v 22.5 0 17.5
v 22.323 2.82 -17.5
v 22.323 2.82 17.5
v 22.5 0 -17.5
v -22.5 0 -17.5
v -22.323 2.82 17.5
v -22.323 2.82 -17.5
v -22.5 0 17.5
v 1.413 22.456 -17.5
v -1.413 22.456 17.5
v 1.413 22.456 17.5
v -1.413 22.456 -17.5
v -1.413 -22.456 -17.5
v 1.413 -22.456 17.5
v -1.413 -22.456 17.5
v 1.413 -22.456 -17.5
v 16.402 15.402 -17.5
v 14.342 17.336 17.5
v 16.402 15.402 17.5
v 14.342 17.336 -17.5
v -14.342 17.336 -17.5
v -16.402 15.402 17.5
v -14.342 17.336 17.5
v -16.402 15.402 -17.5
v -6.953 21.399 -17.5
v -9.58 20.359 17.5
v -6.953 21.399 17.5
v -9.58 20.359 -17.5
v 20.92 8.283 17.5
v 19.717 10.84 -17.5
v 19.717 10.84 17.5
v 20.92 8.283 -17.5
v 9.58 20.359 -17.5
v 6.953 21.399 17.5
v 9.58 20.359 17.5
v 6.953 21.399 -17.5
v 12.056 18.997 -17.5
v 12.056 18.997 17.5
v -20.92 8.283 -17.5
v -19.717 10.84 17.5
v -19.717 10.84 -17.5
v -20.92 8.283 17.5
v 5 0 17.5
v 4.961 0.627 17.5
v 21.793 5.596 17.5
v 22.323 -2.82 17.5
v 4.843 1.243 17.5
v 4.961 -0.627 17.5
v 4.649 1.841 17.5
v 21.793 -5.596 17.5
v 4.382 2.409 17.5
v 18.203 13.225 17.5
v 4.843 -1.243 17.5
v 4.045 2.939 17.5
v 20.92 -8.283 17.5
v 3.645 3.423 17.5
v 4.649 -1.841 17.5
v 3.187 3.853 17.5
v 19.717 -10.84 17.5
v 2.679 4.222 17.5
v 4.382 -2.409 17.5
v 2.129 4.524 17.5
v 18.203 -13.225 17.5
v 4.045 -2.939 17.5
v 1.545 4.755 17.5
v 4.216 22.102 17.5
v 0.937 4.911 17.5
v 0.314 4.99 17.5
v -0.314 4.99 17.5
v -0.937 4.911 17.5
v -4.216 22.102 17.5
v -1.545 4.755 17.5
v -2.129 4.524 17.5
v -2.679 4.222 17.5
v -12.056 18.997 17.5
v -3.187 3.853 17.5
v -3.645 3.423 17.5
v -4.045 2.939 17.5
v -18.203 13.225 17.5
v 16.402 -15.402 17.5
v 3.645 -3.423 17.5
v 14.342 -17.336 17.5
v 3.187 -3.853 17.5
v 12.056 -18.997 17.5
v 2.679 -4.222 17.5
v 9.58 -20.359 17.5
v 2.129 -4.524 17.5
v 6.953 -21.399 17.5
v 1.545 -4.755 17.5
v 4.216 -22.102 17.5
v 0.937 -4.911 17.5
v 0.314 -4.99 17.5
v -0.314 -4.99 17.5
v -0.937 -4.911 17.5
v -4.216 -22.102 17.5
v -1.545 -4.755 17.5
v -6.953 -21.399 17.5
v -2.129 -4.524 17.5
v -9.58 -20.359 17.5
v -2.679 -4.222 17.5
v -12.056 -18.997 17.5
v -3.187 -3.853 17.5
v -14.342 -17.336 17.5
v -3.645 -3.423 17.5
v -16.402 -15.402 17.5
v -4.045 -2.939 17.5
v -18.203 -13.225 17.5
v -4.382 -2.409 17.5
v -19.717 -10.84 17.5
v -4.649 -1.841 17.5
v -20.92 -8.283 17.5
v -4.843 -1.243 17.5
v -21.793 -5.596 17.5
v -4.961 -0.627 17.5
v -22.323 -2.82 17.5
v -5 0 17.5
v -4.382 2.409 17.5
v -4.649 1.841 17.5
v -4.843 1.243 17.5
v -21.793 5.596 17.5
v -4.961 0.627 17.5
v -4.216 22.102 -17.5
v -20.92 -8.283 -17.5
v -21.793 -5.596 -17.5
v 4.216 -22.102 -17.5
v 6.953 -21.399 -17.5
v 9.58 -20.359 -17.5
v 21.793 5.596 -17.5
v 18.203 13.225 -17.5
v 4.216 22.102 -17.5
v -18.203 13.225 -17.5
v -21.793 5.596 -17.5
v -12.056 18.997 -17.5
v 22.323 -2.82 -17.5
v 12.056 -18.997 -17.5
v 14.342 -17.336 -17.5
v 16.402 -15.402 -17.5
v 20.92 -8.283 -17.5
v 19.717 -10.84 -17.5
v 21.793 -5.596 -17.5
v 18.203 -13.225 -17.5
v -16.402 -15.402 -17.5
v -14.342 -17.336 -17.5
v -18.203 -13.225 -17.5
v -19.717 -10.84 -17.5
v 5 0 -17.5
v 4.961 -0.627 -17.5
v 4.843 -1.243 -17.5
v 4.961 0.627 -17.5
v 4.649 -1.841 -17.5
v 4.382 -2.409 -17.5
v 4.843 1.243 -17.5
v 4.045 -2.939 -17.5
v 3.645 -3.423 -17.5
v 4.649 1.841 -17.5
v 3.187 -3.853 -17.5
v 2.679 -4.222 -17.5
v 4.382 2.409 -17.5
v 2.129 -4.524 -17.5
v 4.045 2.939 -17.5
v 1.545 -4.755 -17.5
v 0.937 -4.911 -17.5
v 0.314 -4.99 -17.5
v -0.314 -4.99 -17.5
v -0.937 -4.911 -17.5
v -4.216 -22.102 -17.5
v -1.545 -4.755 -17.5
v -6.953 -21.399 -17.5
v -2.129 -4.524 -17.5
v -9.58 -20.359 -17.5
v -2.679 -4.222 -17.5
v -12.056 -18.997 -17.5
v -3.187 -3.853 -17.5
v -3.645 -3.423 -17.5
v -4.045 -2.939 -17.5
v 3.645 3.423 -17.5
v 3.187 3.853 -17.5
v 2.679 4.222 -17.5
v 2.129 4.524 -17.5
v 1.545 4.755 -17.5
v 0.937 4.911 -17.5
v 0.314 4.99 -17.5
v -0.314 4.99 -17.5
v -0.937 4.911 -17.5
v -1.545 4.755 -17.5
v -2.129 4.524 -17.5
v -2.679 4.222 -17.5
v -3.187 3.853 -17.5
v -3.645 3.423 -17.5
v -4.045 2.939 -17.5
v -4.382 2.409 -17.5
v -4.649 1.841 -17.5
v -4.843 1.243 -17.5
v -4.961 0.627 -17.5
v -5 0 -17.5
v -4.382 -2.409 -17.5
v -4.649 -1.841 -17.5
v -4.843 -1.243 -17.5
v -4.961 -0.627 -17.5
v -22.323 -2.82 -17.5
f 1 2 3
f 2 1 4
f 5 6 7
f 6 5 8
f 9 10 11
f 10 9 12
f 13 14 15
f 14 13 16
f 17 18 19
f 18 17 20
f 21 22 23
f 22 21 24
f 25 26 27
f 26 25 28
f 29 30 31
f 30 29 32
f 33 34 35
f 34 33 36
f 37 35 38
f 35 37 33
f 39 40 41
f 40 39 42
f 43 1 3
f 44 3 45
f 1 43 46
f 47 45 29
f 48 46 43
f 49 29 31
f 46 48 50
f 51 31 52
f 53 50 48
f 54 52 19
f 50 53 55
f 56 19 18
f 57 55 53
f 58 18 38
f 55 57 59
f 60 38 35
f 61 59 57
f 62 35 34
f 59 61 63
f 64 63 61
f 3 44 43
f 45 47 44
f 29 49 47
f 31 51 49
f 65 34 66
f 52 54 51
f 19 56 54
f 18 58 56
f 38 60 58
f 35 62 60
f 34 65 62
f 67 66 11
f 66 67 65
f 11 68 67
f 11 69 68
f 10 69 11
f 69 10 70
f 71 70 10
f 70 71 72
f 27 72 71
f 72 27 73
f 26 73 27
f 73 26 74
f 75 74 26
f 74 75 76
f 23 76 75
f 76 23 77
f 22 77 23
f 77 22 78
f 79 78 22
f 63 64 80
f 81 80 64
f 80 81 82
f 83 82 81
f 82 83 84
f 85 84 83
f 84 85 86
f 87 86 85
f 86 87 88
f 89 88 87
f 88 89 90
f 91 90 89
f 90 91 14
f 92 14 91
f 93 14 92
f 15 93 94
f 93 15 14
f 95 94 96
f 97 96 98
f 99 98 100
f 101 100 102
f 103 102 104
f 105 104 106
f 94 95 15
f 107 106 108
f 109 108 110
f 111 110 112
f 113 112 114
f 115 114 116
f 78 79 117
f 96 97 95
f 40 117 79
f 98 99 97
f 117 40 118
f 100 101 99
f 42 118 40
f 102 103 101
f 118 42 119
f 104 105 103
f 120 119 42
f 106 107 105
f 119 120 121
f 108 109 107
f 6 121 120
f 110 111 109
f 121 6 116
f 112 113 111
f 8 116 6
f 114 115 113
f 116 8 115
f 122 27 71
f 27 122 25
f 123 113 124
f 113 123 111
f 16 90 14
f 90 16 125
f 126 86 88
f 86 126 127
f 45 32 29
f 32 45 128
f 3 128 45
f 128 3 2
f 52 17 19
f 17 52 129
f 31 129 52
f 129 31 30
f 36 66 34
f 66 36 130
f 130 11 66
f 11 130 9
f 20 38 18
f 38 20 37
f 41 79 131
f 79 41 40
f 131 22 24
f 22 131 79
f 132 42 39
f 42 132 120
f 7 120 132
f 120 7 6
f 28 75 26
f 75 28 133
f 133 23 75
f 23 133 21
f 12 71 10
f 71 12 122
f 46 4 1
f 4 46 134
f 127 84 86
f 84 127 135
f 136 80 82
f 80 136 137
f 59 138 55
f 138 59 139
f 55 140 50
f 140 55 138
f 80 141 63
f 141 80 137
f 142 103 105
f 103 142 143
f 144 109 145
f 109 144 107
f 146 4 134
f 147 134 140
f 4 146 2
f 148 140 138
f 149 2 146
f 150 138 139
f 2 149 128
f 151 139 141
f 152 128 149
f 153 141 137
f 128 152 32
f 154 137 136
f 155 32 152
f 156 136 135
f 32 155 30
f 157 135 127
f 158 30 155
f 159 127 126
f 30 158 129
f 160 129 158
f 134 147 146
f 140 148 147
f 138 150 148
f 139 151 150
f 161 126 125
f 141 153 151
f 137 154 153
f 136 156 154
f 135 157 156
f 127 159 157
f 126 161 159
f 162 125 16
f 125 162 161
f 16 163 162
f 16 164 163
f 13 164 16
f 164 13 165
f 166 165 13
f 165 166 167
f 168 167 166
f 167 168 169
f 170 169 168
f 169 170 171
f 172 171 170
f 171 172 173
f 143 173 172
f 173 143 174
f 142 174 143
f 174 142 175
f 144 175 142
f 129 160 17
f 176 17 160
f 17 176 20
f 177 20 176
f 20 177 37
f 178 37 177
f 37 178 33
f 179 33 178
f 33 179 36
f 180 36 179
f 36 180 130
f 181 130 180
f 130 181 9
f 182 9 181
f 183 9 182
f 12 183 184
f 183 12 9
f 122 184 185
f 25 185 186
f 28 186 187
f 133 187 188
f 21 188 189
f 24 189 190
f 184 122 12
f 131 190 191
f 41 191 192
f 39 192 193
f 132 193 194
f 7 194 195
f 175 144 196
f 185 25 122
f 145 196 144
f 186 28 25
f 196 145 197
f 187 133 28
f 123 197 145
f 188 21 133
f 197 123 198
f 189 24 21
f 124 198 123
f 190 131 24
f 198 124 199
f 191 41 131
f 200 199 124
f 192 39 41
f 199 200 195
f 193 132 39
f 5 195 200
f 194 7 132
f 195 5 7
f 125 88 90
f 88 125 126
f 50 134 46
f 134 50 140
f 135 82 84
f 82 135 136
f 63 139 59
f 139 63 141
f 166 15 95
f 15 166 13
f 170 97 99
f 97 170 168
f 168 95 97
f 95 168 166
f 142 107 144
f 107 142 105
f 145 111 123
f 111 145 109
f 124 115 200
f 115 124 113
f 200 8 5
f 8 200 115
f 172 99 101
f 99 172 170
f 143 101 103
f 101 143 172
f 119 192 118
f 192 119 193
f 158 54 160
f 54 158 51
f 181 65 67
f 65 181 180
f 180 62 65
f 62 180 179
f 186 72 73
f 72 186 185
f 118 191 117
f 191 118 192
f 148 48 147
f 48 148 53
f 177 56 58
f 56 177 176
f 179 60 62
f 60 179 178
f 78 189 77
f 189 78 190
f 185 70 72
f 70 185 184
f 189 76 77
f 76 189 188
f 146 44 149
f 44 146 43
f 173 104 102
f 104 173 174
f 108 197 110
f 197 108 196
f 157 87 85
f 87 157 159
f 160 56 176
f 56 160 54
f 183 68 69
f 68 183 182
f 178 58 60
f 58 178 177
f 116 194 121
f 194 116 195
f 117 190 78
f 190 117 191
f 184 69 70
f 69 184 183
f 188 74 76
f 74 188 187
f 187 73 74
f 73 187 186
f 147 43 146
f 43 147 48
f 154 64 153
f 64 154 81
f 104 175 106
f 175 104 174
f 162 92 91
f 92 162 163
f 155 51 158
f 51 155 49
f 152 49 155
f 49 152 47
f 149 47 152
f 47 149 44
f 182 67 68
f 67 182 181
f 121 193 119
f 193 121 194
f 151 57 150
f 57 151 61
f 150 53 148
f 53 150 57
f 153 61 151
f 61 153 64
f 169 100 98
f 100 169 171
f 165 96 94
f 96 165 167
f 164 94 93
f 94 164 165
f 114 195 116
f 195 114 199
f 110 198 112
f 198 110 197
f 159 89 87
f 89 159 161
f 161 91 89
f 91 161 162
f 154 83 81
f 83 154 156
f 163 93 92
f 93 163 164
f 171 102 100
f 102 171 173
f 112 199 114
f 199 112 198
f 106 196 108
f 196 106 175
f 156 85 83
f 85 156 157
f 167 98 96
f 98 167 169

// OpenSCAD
$fn = 50;


difference() {
	union() {
		translate(v = [0, 0, -17.5000000000]) {
			cylinder(h = 35, r = 22.5000000000);
		}
	}
	union() {
		translate(v = [0, 0, -100.0000000000]) {
			cylinder(h = 200, r = 5);
		}
	}
}
